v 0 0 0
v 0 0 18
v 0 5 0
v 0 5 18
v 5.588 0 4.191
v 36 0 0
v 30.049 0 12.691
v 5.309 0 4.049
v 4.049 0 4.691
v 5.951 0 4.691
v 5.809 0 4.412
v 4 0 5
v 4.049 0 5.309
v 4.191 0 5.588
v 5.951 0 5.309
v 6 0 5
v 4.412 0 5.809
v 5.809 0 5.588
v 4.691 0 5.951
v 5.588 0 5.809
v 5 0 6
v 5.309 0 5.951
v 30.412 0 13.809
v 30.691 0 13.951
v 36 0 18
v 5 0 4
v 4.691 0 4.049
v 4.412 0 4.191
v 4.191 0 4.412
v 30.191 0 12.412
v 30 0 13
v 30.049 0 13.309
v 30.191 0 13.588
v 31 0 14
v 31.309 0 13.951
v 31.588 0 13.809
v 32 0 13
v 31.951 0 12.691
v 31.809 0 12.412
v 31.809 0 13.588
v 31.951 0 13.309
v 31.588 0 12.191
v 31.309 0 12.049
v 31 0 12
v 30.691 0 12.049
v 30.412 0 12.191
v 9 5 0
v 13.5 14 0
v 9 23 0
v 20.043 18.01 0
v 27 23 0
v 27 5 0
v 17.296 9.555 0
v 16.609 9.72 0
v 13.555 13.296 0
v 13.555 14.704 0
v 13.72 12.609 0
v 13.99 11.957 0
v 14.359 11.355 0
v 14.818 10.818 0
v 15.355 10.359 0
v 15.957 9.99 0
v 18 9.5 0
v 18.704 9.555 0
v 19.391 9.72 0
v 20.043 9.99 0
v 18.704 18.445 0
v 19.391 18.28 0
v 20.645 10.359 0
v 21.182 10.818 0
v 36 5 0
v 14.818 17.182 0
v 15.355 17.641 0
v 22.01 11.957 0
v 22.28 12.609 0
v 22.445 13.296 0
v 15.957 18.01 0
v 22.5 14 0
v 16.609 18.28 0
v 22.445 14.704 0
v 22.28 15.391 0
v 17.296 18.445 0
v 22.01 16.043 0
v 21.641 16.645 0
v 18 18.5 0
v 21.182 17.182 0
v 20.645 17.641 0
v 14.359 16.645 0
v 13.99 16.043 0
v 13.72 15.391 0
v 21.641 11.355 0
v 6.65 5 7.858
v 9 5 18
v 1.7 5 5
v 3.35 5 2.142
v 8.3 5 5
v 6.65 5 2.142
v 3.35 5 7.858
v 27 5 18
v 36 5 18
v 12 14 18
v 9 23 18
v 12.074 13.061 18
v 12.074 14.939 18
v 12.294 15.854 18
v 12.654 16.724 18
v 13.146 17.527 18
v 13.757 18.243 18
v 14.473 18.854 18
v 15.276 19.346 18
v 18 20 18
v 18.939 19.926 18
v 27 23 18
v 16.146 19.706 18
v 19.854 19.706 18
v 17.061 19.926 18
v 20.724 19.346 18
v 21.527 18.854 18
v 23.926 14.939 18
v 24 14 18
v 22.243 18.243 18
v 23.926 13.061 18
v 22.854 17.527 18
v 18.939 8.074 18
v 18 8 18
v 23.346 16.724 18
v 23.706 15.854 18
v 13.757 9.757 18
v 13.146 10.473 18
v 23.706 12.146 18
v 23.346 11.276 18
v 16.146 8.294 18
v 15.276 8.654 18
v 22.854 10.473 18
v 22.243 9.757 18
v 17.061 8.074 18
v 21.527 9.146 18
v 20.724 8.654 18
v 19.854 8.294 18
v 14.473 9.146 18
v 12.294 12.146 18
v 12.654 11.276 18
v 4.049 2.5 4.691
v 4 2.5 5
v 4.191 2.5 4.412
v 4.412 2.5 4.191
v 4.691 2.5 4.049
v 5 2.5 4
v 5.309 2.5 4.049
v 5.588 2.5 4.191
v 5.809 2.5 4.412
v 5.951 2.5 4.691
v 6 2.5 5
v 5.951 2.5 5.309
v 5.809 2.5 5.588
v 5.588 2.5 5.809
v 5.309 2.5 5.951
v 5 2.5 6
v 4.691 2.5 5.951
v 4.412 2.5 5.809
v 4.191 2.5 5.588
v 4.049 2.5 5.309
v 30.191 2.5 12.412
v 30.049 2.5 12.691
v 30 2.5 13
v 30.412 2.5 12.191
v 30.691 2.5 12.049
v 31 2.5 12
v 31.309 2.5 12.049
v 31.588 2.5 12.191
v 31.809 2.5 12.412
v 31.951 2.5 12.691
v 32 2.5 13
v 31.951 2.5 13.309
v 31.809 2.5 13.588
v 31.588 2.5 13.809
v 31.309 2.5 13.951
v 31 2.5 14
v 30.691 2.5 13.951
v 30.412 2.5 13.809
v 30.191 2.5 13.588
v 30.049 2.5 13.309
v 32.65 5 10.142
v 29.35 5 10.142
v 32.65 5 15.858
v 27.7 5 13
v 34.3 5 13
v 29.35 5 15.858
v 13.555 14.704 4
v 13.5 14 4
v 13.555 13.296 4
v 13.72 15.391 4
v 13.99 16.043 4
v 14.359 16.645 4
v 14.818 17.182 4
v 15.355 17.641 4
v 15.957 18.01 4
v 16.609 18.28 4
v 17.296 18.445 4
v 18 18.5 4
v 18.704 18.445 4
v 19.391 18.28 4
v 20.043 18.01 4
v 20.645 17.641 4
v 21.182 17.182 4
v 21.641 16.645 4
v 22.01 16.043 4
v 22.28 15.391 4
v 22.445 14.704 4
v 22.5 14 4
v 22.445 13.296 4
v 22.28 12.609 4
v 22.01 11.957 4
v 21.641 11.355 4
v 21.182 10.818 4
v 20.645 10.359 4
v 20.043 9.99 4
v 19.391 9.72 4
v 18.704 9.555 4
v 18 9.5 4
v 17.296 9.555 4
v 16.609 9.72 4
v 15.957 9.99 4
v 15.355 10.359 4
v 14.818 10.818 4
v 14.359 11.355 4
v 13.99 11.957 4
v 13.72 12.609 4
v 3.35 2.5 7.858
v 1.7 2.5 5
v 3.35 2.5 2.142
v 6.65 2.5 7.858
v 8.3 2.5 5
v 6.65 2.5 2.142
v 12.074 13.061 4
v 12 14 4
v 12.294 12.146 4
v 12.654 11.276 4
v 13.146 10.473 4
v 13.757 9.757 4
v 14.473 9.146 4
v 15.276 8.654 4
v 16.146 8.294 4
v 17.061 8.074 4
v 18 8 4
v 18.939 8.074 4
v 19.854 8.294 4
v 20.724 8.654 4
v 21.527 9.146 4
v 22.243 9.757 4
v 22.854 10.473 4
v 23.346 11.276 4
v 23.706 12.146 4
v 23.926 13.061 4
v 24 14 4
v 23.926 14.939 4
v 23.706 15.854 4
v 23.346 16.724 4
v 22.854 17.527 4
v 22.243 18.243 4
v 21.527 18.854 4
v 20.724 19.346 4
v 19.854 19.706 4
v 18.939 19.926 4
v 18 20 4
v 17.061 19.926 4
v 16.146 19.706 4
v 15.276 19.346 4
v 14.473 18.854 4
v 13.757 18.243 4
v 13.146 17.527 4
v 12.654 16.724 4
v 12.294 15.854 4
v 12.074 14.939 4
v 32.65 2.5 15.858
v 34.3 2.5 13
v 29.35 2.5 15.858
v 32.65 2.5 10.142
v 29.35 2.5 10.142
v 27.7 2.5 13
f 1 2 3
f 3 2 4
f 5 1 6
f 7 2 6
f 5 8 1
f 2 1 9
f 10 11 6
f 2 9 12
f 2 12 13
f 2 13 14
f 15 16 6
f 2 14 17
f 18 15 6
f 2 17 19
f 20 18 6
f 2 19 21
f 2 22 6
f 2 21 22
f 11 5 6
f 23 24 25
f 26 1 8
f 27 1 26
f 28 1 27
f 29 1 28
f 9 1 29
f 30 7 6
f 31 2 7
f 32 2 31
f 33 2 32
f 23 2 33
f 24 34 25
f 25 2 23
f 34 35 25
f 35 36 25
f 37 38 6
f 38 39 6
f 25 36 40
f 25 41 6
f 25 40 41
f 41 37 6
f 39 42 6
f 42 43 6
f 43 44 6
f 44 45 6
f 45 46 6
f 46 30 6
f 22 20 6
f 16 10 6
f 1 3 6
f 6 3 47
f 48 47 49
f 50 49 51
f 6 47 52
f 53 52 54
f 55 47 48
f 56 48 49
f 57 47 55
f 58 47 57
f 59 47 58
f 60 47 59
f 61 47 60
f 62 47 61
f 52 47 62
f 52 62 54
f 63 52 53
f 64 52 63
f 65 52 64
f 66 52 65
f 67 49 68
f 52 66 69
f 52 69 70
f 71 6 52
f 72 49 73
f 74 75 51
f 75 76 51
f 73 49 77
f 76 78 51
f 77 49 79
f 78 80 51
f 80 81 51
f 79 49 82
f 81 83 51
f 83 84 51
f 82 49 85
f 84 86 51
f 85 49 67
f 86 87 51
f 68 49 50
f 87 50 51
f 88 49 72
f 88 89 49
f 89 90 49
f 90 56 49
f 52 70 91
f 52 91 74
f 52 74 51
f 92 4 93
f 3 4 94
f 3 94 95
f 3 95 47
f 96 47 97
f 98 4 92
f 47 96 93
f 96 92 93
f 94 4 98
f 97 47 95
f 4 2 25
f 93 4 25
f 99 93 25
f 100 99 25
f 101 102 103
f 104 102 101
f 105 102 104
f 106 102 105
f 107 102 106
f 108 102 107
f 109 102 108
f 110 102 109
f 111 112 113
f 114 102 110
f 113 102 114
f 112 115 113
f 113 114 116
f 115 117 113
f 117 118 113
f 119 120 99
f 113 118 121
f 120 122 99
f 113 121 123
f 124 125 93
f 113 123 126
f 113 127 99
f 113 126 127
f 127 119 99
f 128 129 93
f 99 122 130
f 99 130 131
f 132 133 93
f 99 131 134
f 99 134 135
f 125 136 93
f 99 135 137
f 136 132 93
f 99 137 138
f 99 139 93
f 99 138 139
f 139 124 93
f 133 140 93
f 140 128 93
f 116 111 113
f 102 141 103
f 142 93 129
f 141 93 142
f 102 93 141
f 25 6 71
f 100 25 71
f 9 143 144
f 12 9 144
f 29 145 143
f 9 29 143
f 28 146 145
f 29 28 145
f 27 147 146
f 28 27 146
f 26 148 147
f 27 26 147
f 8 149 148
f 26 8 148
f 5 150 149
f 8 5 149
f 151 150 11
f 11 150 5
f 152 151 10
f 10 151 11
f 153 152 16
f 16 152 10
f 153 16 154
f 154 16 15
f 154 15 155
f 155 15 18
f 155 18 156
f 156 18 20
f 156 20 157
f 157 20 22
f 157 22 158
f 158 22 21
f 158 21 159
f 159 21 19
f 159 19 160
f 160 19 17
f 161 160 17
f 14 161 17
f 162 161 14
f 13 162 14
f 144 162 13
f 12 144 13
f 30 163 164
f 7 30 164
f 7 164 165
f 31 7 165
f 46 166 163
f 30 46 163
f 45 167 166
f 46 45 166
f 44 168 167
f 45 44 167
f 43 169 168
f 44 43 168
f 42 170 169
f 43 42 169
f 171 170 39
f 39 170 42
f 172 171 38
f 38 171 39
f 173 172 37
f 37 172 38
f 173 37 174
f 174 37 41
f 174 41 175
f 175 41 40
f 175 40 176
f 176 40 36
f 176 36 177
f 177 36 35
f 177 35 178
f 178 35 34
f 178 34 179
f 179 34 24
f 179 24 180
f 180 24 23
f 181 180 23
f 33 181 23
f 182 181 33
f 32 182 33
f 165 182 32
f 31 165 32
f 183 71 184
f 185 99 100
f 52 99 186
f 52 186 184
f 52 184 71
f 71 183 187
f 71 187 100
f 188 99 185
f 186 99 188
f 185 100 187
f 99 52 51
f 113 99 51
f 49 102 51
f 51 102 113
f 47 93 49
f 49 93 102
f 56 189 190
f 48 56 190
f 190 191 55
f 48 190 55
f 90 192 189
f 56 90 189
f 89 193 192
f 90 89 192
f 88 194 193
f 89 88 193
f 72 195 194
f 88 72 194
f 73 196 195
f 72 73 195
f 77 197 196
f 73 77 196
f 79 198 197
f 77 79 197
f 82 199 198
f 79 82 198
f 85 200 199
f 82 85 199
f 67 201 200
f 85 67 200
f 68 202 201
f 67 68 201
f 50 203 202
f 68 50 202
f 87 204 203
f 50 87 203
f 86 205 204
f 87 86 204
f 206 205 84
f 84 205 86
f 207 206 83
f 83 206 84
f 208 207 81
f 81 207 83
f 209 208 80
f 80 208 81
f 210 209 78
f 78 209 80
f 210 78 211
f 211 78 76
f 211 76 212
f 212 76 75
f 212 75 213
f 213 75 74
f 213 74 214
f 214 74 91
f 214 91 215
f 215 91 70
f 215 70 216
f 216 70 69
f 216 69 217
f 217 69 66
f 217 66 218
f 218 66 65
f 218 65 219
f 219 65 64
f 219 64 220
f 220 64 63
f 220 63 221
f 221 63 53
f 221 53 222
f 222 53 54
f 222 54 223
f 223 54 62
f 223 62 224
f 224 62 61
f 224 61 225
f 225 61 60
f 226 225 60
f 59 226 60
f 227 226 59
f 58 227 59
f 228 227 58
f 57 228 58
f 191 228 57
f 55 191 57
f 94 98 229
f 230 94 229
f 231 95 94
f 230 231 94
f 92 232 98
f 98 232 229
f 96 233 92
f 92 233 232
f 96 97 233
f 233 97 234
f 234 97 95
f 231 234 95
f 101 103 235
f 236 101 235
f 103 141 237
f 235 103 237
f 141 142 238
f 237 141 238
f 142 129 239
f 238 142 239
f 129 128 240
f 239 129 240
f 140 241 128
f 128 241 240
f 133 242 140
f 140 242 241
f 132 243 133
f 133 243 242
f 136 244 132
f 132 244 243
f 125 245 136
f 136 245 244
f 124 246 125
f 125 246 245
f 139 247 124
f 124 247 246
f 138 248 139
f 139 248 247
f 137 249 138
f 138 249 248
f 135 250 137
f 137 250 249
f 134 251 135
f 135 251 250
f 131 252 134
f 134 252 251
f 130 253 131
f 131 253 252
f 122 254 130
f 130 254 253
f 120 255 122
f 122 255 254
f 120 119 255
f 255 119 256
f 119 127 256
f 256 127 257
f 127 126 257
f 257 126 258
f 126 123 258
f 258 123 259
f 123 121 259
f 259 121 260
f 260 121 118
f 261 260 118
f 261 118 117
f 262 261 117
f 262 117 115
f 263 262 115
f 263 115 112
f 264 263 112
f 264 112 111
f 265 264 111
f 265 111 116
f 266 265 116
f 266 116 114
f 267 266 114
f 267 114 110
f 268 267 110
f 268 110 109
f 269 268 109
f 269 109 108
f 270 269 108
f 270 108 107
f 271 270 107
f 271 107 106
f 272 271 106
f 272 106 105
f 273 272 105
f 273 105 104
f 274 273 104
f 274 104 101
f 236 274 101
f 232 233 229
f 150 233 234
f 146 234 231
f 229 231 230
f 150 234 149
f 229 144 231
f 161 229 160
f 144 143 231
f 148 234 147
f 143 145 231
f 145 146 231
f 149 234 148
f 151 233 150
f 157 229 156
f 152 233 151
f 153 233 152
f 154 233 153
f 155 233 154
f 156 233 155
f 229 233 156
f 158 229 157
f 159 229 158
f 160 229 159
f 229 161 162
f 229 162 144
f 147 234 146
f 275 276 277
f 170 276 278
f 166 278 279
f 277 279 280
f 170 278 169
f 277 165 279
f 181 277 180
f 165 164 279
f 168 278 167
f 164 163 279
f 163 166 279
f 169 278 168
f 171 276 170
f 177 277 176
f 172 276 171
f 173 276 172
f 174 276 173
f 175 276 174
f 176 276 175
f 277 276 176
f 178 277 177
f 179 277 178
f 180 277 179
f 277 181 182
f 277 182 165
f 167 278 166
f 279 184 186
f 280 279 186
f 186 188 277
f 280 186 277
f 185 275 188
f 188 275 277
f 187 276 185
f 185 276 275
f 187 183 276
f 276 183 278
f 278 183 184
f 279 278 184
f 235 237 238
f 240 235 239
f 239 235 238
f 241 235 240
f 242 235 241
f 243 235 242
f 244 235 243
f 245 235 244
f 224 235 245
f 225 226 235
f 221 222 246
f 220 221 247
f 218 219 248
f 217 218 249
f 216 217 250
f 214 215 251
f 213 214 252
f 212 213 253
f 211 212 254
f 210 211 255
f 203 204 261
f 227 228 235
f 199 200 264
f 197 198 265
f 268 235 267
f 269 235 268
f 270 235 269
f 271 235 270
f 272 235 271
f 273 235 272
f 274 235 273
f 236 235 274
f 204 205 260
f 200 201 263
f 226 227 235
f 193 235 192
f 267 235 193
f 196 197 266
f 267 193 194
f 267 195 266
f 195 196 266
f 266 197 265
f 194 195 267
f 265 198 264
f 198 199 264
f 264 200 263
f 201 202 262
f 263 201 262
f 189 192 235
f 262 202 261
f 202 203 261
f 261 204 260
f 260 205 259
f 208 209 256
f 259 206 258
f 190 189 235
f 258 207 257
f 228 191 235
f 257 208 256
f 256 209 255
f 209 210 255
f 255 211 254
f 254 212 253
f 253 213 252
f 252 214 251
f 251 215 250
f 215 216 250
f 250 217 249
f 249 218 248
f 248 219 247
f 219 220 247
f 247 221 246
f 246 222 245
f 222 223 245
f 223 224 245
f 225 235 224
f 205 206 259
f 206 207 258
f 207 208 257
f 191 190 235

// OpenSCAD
d1=12;
d2=9;
union() {
	difference() {
		cube([36,5,18]);
		translate([5,-1,5]) rotate([-90,0,0]) {
			cylinder(7,r=2/2,$fn=20);
			translate([0,0,3.5]) rotate([0,0,90])cylinder(3,r=6.6/2,$fa=60);
		}
		translate([31,-1,13]) rotate([-90,0,0]) {
			cylinder(7,r=2/2,$fn=20);
			translate([0,0,3.5]) rotate([0,0,90]) cylinder(3,r=6.6/2,$fa=60);
		}
	}
	translate([9,5,0])
	difference() {
		cube(18);
		translate([9,9,-1]) cylinder(20,r=d2/2,$fn=40);
		translate([9,9,4]) cylinder(20,r=d1/2,$fn=40);
	}
}
